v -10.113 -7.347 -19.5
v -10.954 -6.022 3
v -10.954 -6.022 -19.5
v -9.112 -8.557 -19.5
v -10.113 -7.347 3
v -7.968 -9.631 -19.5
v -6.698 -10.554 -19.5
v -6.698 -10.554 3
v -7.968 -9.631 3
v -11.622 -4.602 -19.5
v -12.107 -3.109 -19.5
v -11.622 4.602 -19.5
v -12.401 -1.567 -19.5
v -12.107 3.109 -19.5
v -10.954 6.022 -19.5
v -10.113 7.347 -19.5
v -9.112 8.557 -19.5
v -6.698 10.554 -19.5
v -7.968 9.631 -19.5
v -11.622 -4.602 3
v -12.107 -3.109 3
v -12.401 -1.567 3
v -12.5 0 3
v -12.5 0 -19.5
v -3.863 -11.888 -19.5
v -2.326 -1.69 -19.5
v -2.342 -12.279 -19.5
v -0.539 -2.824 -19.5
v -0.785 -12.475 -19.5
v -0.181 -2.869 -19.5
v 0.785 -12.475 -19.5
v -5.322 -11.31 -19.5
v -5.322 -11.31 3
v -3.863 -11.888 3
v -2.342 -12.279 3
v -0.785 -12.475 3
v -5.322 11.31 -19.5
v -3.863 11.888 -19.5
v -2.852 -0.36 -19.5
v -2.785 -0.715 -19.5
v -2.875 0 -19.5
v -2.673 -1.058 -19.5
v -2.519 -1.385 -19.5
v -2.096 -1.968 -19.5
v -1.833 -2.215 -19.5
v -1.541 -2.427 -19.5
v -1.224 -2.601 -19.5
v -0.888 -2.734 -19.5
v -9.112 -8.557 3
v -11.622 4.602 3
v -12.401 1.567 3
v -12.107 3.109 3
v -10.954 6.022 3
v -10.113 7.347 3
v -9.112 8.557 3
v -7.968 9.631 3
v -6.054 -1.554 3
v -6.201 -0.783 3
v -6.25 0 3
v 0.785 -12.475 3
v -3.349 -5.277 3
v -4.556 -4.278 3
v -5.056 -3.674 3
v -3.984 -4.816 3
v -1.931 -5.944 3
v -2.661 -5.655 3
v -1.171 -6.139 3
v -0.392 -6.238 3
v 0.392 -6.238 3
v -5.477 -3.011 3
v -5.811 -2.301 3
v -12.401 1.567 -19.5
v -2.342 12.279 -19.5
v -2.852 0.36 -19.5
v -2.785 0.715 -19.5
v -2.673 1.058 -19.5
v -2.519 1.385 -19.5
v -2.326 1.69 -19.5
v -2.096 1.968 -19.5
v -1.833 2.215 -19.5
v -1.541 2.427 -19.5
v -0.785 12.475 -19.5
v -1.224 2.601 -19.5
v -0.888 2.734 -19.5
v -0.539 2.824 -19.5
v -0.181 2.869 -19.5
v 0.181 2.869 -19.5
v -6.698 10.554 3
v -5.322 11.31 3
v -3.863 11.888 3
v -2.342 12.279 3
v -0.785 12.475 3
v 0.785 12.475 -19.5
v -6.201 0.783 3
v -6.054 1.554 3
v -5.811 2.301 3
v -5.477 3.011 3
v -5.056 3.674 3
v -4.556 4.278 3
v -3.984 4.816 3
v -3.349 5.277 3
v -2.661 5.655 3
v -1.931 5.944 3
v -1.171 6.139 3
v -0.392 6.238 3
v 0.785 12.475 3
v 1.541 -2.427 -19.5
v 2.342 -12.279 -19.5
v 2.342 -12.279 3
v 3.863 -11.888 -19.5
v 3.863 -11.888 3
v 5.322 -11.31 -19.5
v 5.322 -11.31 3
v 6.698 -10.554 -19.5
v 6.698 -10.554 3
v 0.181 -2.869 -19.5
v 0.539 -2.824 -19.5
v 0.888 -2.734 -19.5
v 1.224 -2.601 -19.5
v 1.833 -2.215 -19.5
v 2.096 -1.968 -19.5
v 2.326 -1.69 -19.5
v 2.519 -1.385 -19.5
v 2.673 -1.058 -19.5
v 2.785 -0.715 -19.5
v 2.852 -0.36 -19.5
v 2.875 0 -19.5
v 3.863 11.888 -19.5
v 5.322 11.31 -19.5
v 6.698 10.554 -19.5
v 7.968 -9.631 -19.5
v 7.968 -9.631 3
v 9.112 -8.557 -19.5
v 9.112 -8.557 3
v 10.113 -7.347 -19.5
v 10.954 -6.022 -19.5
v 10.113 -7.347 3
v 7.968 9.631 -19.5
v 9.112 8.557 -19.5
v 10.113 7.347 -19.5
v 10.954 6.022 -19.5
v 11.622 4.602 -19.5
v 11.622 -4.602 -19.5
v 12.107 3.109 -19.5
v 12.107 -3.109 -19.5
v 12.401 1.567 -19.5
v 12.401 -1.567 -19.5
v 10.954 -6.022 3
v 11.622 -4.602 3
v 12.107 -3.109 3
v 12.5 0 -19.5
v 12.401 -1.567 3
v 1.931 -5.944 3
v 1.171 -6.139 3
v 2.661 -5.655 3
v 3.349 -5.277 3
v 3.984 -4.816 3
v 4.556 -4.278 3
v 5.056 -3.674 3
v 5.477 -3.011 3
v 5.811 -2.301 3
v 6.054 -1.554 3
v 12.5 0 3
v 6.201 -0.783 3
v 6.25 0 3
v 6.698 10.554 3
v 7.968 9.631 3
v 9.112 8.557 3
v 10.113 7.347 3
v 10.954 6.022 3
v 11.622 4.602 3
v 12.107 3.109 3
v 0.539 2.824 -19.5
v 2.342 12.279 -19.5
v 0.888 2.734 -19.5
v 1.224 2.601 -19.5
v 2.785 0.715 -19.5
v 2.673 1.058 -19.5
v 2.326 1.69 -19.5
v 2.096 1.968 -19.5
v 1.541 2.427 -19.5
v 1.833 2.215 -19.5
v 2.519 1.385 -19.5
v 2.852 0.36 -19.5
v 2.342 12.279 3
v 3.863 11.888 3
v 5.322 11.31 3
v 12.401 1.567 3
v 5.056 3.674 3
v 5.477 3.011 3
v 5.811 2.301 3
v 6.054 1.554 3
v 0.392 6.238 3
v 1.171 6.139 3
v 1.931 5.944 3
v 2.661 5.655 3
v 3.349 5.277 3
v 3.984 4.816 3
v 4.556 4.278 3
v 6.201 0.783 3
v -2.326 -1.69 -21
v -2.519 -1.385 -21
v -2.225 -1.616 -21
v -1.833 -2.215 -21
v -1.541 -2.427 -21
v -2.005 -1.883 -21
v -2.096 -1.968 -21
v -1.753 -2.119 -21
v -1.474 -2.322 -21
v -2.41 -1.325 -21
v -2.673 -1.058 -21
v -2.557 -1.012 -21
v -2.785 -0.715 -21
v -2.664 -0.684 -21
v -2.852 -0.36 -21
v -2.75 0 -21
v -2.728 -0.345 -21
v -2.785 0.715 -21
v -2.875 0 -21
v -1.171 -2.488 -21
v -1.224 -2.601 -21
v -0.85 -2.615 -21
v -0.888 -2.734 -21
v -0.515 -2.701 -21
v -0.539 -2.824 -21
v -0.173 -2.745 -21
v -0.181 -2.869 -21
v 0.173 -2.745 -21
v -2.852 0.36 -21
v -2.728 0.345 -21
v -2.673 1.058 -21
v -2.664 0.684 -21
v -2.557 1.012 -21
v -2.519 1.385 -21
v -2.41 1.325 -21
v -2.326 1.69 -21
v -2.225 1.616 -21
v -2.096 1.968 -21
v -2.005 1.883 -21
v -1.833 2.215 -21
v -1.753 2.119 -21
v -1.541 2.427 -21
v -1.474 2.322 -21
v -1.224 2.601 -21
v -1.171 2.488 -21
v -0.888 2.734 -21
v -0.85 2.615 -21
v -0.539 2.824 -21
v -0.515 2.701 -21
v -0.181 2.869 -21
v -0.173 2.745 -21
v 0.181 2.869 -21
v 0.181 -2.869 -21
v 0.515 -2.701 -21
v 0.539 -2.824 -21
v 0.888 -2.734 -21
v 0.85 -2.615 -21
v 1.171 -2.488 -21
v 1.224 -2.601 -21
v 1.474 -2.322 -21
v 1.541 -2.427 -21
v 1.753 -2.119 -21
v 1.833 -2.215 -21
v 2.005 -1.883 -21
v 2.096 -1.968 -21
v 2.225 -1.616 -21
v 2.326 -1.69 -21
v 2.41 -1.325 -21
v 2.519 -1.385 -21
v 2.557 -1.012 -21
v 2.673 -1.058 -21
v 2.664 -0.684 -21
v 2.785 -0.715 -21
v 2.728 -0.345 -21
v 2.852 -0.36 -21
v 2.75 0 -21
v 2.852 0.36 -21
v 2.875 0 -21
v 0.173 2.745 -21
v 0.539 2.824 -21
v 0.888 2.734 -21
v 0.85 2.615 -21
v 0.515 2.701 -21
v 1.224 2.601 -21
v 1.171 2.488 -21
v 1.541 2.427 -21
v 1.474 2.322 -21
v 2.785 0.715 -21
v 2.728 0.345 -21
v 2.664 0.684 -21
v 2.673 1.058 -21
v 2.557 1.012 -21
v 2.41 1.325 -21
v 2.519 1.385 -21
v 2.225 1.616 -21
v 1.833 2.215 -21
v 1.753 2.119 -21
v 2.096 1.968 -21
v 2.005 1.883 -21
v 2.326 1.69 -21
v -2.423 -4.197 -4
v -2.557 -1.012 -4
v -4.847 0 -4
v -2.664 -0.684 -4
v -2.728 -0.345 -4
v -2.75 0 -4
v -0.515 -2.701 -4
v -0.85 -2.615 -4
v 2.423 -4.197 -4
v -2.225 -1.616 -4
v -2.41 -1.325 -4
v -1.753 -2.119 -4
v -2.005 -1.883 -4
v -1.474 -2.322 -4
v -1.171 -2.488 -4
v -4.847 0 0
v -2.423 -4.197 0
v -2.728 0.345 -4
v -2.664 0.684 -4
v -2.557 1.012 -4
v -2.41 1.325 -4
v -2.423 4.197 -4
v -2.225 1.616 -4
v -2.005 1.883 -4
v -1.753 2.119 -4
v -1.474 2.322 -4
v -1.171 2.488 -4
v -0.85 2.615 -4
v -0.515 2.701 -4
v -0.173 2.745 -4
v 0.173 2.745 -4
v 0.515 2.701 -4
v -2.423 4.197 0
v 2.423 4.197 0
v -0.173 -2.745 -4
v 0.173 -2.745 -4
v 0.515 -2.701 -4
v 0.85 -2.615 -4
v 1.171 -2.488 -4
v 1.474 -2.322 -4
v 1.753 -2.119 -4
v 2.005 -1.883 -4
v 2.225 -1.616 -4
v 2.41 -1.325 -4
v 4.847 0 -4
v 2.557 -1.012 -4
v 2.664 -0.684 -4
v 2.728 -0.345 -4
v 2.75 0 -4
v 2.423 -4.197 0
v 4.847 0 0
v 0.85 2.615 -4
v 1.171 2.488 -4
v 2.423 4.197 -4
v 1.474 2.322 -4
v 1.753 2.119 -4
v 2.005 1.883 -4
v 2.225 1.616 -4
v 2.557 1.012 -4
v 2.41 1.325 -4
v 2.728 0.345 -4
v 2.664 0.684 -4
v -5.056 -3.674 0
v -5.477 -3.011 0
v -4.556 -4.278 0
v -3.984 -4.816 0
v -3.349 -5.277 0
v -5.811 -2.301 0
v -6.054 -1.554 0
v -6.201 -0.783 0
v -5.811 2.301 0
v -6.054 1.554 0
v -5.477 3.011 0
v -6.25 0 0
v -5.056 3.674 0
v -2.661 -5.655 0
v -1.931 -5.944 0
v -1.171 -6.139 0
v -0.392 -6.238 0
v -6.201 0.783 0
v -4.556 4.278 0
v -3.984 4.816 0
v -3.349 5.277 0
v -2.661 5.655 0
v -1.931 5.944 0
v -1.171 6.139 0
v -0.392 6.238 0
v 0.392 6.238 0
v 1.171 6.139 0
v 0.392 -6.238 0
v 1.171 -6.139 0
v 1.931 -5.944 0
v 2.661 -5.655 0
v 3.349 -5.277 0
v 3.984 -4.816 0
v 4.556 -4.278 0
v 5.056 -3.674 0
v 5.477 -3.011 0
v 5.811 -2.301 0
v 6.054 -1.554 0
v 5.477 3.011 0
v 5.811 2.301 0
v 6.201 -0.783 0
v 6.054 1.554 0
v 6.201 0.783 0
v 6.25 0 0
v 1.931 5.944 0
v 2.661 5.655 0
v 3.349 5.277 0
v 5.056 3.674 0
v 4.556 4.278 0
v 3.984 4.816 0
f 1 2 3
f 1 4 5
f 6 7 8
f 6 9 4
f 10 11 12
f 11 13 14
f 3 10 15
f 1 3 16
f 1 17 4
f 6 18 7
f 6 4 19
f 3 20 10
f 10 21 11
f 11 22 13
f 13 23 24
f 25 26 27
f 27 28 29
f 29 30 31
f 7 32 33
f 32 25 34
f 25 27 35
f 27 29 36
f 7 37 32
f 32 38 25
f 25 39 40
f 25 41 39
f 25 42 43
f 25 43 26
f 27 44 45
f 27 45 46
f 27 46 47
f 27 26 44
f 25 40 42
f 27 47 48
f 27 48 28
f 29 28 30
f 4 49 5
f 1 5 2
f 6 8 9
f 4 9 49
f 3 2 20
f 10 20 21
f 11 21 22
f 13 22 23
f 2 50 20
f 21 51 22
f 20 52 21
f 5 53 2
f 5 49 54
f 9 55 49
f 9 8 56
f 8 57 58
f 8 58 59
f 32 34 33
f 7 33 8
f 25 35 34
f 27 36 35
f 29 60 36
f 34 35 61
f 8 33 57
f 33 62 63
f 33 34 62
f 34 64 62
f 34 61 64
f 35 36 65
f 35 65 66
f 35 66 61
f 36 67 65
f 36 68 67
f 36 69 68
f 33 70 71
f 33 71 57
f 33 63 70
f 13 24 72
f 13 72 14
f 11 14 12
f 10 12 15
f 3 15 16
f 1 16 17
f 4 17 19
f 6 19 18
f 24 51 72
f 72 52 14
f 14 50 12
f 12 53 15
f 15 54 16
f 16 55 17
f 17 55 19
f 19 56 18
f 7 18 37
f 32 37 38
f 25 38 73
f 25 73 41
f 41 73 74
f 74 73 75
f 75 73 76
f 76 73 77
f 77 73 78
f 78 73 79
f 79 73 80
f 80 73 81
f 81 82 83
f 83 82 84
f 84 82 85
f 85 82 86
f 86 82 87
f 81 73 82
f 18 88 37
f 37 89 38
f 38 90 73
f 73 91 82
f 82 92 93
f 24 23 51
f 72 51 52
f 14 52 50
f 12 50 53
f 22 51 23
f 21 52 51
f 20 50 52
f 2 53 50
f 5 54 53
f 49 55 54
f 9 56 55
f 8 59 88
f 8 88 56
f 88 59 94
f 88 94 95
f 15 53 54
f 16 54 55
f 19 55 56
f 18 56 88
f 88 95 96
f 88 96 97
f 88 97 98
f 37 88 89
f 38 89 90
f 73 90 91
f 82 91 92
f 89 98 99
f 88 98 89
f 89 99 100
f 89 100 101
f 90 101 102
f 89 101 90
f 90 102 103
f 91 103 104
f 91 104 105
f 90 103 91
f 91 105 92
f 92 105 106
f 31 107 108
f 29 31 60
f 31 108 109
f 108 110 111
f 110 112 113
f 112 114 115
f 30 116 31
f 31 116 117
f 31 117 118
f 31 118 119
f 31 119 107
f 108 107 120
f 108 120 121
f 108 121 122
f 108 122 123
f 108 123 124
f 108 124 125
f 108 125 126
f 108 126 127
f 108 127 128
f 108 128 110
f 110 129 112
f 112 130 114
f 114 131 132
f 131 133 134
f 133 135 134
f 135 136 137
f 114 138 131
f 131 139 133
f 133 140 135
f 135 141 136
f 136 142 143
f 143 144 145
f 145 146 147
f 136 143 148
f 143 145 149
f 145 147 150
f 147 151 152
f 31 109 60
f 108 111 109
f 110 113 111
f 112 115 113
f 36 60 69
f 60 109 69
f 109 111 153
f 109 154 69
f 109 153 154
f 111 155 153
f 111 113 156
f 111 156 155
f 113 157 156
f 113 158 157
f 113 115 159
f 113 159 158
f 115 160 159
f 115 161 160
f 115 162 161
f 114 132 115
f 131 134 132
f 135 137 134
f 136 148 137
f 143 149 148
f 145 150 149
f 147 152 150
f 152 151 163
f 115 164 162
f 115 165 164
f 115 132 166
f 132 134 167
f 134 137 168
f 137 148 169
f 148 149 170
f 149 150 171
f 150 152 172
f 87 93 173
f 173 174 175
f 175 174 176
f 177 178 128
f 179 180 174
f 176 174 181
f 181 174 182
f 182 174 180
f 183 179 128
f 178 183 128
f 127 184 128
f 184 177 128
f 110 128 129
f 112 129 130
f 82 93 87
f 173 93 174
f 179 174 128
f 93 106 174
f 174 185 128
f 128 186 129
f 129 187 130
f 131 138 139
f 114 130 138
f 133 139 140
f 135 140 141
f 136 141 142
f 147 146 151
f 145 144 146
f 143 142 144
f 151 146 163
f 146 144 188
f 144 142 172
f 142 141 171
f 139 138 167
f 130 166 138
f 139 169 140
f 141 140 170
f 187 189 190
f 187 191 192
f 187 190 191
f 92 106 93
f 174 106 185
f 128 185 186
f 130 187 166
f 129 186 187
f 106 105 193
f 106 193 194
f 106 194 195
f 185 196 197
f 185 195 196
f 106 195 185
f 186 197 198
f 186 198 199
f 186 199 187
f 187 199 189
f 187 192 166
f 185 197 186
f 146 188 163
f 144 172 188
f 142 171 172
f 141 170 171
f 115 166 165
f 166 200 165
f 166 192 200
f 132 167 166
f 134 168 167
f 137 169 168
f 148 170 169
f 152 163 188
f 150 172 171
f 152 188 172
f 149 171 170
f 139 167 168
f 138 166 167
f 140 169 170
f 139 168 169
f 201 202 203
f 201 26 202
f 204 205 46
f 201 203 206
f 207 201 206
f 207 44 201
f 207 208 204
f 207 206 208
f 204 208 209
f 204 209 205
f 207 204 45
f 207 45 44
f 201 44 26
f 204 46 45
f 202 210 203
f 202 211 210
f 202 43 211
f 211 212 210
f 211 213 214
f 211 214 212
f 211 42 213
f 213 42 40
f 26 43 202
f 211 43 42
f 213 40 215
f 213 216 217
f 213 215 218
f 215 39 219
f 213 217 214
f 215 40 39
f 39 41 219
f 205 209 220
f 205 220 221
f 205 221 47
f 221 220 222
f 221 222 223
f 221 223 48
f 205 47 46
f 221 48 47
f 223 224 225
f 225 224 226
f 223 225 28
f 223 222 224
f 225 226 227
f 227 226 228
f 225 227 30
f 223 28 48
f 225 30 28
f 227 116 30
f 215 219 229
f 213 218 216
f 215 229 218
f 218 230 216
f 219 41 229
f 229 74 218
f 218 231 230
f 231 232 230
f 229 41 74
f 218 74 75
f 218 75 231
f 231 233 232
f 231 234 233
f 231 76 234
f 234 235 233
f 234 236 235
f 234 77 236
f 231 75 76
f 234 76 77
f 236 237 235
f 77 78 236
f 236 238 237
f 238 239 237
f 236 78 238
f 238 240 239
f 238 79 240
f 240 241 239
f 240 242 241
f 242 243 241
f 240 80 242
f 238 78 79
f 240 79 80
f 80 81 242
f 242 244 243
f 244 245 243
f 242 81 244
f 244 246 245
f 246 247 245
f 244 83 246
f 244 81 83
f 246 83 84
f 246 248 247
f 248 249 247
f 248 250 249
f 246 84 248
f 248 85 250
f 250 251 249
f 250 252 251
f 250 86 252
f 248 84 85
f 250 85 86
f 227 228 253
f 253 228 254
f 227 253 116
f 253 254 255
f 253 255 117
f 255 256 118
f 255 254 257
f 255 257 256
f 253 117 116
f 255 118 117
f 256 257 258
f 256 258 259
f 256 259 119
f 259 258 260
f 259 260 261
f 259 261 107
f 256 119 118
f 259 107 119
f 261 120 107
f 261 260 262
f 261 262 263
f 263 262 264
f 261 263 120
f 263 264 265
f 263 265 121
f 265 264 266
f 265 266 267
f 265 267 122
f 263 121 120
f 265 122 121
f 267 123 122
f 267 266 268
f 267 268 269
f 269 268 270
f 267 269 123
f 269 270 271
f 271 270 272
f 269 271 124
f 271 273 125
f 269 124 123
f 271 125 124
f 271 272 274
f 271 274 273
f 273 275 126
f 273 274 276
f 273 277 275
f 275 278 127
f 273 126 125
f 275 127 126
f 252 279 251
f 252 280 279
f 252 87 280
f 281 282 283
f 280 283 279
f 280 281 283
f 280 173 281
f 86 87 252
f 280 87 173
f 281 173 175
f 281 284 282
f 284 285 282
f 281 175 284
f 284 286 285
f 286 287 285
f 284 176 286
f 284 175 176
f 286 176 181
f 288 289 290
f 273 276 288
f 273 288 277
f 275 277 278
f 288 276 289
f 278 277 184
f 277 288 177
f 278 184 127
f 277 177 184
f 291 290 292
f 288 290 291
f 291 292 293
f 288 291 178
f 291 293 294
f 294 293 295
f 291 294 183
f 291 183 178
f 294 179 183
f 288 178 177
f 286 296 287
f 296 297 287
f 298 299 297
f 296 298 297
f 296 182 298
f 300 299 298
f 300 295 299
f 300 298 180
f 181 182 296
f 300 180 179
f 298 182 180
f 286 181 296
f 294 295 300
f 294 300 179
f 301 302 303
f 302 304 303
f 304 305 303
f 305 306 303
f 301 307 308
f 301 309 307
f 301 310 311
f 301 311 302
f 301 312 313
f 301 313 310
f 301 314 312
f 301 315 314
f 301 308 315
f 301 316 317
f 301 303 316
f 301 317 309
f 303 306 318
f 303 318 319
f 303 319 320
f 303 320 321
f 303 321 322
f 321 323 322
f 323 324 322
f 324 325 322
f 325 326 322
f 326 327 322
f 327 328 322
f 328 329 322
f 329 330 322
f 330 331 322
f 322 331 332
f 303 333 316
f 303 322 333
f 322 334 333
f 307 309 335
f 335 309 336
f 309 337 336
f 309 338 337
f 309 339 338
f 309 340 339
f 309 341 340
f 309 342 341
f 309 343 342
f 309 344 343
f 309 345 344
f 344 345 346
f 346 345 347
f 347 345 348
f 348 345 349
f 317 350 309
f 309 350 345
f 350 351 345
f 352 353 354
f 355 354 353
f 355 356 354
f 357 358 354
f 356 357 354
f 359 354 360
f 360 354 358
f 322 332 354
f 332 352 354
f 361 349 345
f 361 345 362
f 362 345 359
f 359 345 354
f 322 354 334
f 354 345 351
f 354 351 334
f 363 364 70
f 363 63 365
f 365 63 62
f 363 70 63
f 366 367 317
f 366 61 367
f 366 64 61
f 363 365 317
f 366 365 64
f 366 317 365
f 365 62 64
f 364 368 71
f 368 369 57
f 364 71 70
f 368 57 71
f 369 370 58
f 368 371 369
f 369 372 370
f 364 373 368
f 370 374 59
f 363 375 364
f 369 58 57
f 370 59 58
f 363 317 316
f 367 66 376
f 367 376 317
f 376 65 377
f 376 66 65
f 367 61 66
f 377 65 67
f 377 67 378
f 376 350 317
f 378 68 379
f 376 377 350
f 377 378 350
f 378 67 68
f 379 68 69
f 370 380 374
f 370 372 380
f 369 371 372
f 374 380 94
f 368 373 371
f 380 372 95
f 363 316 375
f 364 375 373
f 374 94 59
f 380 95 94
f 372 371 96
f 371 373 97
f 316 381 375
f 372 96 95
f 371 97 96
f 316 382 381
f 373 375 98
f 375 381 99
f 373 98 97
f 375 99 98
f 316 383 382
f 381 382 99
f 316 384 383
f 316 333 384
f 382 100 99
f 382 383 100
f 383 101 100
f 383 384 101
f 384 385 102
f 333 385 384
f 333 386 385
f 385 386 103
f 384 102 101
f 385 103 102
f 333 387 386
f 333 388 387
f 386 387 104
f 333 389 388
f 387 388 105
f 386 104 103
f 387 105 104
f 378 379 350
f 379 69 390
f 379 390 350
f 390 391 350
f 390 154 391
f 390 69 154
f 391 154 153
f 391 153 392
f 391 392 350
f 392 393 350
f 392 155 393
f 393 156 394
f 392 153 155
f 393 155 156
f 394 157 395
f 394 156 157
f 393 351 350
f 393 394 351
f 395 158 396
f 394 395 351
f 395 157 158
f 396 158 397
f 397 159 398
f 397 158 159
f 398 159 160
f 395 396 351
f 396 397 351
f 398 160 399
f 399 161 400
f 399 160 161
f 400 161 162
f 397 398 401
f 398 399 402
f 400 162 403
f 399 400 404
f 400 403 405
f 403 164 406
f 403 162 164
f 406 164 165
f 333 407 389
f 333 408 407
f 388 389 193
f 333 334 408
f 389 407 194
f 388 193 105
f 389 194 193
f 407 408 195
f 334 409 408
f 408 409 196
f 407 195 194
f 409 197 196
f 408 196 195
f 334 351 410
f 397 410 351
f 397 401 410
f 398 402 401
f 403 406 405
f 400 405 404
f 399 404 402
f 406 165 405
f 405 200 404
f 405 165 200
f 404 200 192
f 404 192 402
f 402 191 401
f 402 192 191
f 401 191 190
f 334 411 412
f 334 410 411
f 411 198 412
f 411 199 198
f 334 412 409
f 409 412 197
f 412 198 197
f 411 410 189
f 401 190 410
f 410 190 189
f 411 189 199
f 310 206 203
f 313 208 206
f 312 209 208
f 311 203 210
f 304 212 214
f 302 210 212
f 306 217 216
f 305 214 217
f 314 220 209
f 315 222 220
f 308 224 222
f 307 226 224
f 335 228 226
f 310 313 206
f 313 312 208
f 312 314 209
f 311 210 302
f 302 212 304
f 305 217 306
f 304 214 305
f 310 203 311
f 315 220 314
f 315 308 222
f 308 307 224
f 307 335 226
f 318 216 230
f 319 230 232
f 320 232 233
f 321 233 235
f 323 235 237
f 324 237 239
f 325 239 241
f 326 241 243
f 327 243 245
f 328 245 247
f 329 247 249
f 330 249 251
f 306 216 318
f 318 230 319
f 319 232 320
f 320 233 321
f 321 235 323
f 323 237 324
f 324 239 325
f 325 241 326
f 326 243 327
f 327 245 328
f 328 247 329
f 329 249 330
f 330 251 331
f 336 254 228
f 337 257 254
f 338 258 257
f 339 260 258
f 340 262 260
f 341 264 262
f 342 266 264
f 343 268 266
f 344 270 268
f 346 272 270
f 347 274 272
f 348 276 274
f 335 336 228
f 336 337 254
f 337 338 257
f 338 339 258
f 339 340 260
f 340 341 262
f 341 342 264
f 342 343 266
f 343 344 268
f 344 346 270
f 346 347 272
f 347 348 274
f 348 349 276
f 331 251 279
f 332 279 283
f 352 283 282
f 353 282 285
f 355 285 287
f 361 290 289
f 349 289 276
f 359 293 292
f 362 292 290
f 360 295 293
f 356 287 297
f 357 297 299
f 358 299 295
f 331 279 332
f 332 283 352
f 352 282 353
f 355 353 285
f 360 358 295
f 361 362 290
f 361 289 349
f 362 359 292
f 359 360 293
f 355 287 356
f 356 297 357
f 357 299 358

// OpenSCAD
$fn = 50;


difference() {
	union() {
		translate(v = [0, 0, -19.5000000000]) {
			cylinder(h = 22.5000000000, r = 12.5000000000);
		}
		#translate(v = [0, 0, -21.0000000000]) {
			cylinder(h = 21, r = 2.8750000000);
		}
	}
	union() {
		translate(v = [0, 0, 0]) {
			rotate(a = [0, 0, 0]) {
				difference() {
					union() {
						translate(v = [0, 0, -4]) {
							linear_extrude(height = 4) {
								polygon(points = [[4.8468000000, 0.0000000000], [2.4234000000, 4.1974519271], [-2.4234000000, 4.1974519271], [-4.8468000000, 0.0000000000], [-2.4234000000, -4.1974519271], [2.4234000000, -4.1974519271]]);
							}
						}
					}
					union();
				}
			}
		}
		#cylinder(h = 3, r = 6.2500000000);
		#translate(v = [0, 0, -100.0000000000]) {
			cylinder(h = 200, r = 2.7500000000);
		}
	}
}
